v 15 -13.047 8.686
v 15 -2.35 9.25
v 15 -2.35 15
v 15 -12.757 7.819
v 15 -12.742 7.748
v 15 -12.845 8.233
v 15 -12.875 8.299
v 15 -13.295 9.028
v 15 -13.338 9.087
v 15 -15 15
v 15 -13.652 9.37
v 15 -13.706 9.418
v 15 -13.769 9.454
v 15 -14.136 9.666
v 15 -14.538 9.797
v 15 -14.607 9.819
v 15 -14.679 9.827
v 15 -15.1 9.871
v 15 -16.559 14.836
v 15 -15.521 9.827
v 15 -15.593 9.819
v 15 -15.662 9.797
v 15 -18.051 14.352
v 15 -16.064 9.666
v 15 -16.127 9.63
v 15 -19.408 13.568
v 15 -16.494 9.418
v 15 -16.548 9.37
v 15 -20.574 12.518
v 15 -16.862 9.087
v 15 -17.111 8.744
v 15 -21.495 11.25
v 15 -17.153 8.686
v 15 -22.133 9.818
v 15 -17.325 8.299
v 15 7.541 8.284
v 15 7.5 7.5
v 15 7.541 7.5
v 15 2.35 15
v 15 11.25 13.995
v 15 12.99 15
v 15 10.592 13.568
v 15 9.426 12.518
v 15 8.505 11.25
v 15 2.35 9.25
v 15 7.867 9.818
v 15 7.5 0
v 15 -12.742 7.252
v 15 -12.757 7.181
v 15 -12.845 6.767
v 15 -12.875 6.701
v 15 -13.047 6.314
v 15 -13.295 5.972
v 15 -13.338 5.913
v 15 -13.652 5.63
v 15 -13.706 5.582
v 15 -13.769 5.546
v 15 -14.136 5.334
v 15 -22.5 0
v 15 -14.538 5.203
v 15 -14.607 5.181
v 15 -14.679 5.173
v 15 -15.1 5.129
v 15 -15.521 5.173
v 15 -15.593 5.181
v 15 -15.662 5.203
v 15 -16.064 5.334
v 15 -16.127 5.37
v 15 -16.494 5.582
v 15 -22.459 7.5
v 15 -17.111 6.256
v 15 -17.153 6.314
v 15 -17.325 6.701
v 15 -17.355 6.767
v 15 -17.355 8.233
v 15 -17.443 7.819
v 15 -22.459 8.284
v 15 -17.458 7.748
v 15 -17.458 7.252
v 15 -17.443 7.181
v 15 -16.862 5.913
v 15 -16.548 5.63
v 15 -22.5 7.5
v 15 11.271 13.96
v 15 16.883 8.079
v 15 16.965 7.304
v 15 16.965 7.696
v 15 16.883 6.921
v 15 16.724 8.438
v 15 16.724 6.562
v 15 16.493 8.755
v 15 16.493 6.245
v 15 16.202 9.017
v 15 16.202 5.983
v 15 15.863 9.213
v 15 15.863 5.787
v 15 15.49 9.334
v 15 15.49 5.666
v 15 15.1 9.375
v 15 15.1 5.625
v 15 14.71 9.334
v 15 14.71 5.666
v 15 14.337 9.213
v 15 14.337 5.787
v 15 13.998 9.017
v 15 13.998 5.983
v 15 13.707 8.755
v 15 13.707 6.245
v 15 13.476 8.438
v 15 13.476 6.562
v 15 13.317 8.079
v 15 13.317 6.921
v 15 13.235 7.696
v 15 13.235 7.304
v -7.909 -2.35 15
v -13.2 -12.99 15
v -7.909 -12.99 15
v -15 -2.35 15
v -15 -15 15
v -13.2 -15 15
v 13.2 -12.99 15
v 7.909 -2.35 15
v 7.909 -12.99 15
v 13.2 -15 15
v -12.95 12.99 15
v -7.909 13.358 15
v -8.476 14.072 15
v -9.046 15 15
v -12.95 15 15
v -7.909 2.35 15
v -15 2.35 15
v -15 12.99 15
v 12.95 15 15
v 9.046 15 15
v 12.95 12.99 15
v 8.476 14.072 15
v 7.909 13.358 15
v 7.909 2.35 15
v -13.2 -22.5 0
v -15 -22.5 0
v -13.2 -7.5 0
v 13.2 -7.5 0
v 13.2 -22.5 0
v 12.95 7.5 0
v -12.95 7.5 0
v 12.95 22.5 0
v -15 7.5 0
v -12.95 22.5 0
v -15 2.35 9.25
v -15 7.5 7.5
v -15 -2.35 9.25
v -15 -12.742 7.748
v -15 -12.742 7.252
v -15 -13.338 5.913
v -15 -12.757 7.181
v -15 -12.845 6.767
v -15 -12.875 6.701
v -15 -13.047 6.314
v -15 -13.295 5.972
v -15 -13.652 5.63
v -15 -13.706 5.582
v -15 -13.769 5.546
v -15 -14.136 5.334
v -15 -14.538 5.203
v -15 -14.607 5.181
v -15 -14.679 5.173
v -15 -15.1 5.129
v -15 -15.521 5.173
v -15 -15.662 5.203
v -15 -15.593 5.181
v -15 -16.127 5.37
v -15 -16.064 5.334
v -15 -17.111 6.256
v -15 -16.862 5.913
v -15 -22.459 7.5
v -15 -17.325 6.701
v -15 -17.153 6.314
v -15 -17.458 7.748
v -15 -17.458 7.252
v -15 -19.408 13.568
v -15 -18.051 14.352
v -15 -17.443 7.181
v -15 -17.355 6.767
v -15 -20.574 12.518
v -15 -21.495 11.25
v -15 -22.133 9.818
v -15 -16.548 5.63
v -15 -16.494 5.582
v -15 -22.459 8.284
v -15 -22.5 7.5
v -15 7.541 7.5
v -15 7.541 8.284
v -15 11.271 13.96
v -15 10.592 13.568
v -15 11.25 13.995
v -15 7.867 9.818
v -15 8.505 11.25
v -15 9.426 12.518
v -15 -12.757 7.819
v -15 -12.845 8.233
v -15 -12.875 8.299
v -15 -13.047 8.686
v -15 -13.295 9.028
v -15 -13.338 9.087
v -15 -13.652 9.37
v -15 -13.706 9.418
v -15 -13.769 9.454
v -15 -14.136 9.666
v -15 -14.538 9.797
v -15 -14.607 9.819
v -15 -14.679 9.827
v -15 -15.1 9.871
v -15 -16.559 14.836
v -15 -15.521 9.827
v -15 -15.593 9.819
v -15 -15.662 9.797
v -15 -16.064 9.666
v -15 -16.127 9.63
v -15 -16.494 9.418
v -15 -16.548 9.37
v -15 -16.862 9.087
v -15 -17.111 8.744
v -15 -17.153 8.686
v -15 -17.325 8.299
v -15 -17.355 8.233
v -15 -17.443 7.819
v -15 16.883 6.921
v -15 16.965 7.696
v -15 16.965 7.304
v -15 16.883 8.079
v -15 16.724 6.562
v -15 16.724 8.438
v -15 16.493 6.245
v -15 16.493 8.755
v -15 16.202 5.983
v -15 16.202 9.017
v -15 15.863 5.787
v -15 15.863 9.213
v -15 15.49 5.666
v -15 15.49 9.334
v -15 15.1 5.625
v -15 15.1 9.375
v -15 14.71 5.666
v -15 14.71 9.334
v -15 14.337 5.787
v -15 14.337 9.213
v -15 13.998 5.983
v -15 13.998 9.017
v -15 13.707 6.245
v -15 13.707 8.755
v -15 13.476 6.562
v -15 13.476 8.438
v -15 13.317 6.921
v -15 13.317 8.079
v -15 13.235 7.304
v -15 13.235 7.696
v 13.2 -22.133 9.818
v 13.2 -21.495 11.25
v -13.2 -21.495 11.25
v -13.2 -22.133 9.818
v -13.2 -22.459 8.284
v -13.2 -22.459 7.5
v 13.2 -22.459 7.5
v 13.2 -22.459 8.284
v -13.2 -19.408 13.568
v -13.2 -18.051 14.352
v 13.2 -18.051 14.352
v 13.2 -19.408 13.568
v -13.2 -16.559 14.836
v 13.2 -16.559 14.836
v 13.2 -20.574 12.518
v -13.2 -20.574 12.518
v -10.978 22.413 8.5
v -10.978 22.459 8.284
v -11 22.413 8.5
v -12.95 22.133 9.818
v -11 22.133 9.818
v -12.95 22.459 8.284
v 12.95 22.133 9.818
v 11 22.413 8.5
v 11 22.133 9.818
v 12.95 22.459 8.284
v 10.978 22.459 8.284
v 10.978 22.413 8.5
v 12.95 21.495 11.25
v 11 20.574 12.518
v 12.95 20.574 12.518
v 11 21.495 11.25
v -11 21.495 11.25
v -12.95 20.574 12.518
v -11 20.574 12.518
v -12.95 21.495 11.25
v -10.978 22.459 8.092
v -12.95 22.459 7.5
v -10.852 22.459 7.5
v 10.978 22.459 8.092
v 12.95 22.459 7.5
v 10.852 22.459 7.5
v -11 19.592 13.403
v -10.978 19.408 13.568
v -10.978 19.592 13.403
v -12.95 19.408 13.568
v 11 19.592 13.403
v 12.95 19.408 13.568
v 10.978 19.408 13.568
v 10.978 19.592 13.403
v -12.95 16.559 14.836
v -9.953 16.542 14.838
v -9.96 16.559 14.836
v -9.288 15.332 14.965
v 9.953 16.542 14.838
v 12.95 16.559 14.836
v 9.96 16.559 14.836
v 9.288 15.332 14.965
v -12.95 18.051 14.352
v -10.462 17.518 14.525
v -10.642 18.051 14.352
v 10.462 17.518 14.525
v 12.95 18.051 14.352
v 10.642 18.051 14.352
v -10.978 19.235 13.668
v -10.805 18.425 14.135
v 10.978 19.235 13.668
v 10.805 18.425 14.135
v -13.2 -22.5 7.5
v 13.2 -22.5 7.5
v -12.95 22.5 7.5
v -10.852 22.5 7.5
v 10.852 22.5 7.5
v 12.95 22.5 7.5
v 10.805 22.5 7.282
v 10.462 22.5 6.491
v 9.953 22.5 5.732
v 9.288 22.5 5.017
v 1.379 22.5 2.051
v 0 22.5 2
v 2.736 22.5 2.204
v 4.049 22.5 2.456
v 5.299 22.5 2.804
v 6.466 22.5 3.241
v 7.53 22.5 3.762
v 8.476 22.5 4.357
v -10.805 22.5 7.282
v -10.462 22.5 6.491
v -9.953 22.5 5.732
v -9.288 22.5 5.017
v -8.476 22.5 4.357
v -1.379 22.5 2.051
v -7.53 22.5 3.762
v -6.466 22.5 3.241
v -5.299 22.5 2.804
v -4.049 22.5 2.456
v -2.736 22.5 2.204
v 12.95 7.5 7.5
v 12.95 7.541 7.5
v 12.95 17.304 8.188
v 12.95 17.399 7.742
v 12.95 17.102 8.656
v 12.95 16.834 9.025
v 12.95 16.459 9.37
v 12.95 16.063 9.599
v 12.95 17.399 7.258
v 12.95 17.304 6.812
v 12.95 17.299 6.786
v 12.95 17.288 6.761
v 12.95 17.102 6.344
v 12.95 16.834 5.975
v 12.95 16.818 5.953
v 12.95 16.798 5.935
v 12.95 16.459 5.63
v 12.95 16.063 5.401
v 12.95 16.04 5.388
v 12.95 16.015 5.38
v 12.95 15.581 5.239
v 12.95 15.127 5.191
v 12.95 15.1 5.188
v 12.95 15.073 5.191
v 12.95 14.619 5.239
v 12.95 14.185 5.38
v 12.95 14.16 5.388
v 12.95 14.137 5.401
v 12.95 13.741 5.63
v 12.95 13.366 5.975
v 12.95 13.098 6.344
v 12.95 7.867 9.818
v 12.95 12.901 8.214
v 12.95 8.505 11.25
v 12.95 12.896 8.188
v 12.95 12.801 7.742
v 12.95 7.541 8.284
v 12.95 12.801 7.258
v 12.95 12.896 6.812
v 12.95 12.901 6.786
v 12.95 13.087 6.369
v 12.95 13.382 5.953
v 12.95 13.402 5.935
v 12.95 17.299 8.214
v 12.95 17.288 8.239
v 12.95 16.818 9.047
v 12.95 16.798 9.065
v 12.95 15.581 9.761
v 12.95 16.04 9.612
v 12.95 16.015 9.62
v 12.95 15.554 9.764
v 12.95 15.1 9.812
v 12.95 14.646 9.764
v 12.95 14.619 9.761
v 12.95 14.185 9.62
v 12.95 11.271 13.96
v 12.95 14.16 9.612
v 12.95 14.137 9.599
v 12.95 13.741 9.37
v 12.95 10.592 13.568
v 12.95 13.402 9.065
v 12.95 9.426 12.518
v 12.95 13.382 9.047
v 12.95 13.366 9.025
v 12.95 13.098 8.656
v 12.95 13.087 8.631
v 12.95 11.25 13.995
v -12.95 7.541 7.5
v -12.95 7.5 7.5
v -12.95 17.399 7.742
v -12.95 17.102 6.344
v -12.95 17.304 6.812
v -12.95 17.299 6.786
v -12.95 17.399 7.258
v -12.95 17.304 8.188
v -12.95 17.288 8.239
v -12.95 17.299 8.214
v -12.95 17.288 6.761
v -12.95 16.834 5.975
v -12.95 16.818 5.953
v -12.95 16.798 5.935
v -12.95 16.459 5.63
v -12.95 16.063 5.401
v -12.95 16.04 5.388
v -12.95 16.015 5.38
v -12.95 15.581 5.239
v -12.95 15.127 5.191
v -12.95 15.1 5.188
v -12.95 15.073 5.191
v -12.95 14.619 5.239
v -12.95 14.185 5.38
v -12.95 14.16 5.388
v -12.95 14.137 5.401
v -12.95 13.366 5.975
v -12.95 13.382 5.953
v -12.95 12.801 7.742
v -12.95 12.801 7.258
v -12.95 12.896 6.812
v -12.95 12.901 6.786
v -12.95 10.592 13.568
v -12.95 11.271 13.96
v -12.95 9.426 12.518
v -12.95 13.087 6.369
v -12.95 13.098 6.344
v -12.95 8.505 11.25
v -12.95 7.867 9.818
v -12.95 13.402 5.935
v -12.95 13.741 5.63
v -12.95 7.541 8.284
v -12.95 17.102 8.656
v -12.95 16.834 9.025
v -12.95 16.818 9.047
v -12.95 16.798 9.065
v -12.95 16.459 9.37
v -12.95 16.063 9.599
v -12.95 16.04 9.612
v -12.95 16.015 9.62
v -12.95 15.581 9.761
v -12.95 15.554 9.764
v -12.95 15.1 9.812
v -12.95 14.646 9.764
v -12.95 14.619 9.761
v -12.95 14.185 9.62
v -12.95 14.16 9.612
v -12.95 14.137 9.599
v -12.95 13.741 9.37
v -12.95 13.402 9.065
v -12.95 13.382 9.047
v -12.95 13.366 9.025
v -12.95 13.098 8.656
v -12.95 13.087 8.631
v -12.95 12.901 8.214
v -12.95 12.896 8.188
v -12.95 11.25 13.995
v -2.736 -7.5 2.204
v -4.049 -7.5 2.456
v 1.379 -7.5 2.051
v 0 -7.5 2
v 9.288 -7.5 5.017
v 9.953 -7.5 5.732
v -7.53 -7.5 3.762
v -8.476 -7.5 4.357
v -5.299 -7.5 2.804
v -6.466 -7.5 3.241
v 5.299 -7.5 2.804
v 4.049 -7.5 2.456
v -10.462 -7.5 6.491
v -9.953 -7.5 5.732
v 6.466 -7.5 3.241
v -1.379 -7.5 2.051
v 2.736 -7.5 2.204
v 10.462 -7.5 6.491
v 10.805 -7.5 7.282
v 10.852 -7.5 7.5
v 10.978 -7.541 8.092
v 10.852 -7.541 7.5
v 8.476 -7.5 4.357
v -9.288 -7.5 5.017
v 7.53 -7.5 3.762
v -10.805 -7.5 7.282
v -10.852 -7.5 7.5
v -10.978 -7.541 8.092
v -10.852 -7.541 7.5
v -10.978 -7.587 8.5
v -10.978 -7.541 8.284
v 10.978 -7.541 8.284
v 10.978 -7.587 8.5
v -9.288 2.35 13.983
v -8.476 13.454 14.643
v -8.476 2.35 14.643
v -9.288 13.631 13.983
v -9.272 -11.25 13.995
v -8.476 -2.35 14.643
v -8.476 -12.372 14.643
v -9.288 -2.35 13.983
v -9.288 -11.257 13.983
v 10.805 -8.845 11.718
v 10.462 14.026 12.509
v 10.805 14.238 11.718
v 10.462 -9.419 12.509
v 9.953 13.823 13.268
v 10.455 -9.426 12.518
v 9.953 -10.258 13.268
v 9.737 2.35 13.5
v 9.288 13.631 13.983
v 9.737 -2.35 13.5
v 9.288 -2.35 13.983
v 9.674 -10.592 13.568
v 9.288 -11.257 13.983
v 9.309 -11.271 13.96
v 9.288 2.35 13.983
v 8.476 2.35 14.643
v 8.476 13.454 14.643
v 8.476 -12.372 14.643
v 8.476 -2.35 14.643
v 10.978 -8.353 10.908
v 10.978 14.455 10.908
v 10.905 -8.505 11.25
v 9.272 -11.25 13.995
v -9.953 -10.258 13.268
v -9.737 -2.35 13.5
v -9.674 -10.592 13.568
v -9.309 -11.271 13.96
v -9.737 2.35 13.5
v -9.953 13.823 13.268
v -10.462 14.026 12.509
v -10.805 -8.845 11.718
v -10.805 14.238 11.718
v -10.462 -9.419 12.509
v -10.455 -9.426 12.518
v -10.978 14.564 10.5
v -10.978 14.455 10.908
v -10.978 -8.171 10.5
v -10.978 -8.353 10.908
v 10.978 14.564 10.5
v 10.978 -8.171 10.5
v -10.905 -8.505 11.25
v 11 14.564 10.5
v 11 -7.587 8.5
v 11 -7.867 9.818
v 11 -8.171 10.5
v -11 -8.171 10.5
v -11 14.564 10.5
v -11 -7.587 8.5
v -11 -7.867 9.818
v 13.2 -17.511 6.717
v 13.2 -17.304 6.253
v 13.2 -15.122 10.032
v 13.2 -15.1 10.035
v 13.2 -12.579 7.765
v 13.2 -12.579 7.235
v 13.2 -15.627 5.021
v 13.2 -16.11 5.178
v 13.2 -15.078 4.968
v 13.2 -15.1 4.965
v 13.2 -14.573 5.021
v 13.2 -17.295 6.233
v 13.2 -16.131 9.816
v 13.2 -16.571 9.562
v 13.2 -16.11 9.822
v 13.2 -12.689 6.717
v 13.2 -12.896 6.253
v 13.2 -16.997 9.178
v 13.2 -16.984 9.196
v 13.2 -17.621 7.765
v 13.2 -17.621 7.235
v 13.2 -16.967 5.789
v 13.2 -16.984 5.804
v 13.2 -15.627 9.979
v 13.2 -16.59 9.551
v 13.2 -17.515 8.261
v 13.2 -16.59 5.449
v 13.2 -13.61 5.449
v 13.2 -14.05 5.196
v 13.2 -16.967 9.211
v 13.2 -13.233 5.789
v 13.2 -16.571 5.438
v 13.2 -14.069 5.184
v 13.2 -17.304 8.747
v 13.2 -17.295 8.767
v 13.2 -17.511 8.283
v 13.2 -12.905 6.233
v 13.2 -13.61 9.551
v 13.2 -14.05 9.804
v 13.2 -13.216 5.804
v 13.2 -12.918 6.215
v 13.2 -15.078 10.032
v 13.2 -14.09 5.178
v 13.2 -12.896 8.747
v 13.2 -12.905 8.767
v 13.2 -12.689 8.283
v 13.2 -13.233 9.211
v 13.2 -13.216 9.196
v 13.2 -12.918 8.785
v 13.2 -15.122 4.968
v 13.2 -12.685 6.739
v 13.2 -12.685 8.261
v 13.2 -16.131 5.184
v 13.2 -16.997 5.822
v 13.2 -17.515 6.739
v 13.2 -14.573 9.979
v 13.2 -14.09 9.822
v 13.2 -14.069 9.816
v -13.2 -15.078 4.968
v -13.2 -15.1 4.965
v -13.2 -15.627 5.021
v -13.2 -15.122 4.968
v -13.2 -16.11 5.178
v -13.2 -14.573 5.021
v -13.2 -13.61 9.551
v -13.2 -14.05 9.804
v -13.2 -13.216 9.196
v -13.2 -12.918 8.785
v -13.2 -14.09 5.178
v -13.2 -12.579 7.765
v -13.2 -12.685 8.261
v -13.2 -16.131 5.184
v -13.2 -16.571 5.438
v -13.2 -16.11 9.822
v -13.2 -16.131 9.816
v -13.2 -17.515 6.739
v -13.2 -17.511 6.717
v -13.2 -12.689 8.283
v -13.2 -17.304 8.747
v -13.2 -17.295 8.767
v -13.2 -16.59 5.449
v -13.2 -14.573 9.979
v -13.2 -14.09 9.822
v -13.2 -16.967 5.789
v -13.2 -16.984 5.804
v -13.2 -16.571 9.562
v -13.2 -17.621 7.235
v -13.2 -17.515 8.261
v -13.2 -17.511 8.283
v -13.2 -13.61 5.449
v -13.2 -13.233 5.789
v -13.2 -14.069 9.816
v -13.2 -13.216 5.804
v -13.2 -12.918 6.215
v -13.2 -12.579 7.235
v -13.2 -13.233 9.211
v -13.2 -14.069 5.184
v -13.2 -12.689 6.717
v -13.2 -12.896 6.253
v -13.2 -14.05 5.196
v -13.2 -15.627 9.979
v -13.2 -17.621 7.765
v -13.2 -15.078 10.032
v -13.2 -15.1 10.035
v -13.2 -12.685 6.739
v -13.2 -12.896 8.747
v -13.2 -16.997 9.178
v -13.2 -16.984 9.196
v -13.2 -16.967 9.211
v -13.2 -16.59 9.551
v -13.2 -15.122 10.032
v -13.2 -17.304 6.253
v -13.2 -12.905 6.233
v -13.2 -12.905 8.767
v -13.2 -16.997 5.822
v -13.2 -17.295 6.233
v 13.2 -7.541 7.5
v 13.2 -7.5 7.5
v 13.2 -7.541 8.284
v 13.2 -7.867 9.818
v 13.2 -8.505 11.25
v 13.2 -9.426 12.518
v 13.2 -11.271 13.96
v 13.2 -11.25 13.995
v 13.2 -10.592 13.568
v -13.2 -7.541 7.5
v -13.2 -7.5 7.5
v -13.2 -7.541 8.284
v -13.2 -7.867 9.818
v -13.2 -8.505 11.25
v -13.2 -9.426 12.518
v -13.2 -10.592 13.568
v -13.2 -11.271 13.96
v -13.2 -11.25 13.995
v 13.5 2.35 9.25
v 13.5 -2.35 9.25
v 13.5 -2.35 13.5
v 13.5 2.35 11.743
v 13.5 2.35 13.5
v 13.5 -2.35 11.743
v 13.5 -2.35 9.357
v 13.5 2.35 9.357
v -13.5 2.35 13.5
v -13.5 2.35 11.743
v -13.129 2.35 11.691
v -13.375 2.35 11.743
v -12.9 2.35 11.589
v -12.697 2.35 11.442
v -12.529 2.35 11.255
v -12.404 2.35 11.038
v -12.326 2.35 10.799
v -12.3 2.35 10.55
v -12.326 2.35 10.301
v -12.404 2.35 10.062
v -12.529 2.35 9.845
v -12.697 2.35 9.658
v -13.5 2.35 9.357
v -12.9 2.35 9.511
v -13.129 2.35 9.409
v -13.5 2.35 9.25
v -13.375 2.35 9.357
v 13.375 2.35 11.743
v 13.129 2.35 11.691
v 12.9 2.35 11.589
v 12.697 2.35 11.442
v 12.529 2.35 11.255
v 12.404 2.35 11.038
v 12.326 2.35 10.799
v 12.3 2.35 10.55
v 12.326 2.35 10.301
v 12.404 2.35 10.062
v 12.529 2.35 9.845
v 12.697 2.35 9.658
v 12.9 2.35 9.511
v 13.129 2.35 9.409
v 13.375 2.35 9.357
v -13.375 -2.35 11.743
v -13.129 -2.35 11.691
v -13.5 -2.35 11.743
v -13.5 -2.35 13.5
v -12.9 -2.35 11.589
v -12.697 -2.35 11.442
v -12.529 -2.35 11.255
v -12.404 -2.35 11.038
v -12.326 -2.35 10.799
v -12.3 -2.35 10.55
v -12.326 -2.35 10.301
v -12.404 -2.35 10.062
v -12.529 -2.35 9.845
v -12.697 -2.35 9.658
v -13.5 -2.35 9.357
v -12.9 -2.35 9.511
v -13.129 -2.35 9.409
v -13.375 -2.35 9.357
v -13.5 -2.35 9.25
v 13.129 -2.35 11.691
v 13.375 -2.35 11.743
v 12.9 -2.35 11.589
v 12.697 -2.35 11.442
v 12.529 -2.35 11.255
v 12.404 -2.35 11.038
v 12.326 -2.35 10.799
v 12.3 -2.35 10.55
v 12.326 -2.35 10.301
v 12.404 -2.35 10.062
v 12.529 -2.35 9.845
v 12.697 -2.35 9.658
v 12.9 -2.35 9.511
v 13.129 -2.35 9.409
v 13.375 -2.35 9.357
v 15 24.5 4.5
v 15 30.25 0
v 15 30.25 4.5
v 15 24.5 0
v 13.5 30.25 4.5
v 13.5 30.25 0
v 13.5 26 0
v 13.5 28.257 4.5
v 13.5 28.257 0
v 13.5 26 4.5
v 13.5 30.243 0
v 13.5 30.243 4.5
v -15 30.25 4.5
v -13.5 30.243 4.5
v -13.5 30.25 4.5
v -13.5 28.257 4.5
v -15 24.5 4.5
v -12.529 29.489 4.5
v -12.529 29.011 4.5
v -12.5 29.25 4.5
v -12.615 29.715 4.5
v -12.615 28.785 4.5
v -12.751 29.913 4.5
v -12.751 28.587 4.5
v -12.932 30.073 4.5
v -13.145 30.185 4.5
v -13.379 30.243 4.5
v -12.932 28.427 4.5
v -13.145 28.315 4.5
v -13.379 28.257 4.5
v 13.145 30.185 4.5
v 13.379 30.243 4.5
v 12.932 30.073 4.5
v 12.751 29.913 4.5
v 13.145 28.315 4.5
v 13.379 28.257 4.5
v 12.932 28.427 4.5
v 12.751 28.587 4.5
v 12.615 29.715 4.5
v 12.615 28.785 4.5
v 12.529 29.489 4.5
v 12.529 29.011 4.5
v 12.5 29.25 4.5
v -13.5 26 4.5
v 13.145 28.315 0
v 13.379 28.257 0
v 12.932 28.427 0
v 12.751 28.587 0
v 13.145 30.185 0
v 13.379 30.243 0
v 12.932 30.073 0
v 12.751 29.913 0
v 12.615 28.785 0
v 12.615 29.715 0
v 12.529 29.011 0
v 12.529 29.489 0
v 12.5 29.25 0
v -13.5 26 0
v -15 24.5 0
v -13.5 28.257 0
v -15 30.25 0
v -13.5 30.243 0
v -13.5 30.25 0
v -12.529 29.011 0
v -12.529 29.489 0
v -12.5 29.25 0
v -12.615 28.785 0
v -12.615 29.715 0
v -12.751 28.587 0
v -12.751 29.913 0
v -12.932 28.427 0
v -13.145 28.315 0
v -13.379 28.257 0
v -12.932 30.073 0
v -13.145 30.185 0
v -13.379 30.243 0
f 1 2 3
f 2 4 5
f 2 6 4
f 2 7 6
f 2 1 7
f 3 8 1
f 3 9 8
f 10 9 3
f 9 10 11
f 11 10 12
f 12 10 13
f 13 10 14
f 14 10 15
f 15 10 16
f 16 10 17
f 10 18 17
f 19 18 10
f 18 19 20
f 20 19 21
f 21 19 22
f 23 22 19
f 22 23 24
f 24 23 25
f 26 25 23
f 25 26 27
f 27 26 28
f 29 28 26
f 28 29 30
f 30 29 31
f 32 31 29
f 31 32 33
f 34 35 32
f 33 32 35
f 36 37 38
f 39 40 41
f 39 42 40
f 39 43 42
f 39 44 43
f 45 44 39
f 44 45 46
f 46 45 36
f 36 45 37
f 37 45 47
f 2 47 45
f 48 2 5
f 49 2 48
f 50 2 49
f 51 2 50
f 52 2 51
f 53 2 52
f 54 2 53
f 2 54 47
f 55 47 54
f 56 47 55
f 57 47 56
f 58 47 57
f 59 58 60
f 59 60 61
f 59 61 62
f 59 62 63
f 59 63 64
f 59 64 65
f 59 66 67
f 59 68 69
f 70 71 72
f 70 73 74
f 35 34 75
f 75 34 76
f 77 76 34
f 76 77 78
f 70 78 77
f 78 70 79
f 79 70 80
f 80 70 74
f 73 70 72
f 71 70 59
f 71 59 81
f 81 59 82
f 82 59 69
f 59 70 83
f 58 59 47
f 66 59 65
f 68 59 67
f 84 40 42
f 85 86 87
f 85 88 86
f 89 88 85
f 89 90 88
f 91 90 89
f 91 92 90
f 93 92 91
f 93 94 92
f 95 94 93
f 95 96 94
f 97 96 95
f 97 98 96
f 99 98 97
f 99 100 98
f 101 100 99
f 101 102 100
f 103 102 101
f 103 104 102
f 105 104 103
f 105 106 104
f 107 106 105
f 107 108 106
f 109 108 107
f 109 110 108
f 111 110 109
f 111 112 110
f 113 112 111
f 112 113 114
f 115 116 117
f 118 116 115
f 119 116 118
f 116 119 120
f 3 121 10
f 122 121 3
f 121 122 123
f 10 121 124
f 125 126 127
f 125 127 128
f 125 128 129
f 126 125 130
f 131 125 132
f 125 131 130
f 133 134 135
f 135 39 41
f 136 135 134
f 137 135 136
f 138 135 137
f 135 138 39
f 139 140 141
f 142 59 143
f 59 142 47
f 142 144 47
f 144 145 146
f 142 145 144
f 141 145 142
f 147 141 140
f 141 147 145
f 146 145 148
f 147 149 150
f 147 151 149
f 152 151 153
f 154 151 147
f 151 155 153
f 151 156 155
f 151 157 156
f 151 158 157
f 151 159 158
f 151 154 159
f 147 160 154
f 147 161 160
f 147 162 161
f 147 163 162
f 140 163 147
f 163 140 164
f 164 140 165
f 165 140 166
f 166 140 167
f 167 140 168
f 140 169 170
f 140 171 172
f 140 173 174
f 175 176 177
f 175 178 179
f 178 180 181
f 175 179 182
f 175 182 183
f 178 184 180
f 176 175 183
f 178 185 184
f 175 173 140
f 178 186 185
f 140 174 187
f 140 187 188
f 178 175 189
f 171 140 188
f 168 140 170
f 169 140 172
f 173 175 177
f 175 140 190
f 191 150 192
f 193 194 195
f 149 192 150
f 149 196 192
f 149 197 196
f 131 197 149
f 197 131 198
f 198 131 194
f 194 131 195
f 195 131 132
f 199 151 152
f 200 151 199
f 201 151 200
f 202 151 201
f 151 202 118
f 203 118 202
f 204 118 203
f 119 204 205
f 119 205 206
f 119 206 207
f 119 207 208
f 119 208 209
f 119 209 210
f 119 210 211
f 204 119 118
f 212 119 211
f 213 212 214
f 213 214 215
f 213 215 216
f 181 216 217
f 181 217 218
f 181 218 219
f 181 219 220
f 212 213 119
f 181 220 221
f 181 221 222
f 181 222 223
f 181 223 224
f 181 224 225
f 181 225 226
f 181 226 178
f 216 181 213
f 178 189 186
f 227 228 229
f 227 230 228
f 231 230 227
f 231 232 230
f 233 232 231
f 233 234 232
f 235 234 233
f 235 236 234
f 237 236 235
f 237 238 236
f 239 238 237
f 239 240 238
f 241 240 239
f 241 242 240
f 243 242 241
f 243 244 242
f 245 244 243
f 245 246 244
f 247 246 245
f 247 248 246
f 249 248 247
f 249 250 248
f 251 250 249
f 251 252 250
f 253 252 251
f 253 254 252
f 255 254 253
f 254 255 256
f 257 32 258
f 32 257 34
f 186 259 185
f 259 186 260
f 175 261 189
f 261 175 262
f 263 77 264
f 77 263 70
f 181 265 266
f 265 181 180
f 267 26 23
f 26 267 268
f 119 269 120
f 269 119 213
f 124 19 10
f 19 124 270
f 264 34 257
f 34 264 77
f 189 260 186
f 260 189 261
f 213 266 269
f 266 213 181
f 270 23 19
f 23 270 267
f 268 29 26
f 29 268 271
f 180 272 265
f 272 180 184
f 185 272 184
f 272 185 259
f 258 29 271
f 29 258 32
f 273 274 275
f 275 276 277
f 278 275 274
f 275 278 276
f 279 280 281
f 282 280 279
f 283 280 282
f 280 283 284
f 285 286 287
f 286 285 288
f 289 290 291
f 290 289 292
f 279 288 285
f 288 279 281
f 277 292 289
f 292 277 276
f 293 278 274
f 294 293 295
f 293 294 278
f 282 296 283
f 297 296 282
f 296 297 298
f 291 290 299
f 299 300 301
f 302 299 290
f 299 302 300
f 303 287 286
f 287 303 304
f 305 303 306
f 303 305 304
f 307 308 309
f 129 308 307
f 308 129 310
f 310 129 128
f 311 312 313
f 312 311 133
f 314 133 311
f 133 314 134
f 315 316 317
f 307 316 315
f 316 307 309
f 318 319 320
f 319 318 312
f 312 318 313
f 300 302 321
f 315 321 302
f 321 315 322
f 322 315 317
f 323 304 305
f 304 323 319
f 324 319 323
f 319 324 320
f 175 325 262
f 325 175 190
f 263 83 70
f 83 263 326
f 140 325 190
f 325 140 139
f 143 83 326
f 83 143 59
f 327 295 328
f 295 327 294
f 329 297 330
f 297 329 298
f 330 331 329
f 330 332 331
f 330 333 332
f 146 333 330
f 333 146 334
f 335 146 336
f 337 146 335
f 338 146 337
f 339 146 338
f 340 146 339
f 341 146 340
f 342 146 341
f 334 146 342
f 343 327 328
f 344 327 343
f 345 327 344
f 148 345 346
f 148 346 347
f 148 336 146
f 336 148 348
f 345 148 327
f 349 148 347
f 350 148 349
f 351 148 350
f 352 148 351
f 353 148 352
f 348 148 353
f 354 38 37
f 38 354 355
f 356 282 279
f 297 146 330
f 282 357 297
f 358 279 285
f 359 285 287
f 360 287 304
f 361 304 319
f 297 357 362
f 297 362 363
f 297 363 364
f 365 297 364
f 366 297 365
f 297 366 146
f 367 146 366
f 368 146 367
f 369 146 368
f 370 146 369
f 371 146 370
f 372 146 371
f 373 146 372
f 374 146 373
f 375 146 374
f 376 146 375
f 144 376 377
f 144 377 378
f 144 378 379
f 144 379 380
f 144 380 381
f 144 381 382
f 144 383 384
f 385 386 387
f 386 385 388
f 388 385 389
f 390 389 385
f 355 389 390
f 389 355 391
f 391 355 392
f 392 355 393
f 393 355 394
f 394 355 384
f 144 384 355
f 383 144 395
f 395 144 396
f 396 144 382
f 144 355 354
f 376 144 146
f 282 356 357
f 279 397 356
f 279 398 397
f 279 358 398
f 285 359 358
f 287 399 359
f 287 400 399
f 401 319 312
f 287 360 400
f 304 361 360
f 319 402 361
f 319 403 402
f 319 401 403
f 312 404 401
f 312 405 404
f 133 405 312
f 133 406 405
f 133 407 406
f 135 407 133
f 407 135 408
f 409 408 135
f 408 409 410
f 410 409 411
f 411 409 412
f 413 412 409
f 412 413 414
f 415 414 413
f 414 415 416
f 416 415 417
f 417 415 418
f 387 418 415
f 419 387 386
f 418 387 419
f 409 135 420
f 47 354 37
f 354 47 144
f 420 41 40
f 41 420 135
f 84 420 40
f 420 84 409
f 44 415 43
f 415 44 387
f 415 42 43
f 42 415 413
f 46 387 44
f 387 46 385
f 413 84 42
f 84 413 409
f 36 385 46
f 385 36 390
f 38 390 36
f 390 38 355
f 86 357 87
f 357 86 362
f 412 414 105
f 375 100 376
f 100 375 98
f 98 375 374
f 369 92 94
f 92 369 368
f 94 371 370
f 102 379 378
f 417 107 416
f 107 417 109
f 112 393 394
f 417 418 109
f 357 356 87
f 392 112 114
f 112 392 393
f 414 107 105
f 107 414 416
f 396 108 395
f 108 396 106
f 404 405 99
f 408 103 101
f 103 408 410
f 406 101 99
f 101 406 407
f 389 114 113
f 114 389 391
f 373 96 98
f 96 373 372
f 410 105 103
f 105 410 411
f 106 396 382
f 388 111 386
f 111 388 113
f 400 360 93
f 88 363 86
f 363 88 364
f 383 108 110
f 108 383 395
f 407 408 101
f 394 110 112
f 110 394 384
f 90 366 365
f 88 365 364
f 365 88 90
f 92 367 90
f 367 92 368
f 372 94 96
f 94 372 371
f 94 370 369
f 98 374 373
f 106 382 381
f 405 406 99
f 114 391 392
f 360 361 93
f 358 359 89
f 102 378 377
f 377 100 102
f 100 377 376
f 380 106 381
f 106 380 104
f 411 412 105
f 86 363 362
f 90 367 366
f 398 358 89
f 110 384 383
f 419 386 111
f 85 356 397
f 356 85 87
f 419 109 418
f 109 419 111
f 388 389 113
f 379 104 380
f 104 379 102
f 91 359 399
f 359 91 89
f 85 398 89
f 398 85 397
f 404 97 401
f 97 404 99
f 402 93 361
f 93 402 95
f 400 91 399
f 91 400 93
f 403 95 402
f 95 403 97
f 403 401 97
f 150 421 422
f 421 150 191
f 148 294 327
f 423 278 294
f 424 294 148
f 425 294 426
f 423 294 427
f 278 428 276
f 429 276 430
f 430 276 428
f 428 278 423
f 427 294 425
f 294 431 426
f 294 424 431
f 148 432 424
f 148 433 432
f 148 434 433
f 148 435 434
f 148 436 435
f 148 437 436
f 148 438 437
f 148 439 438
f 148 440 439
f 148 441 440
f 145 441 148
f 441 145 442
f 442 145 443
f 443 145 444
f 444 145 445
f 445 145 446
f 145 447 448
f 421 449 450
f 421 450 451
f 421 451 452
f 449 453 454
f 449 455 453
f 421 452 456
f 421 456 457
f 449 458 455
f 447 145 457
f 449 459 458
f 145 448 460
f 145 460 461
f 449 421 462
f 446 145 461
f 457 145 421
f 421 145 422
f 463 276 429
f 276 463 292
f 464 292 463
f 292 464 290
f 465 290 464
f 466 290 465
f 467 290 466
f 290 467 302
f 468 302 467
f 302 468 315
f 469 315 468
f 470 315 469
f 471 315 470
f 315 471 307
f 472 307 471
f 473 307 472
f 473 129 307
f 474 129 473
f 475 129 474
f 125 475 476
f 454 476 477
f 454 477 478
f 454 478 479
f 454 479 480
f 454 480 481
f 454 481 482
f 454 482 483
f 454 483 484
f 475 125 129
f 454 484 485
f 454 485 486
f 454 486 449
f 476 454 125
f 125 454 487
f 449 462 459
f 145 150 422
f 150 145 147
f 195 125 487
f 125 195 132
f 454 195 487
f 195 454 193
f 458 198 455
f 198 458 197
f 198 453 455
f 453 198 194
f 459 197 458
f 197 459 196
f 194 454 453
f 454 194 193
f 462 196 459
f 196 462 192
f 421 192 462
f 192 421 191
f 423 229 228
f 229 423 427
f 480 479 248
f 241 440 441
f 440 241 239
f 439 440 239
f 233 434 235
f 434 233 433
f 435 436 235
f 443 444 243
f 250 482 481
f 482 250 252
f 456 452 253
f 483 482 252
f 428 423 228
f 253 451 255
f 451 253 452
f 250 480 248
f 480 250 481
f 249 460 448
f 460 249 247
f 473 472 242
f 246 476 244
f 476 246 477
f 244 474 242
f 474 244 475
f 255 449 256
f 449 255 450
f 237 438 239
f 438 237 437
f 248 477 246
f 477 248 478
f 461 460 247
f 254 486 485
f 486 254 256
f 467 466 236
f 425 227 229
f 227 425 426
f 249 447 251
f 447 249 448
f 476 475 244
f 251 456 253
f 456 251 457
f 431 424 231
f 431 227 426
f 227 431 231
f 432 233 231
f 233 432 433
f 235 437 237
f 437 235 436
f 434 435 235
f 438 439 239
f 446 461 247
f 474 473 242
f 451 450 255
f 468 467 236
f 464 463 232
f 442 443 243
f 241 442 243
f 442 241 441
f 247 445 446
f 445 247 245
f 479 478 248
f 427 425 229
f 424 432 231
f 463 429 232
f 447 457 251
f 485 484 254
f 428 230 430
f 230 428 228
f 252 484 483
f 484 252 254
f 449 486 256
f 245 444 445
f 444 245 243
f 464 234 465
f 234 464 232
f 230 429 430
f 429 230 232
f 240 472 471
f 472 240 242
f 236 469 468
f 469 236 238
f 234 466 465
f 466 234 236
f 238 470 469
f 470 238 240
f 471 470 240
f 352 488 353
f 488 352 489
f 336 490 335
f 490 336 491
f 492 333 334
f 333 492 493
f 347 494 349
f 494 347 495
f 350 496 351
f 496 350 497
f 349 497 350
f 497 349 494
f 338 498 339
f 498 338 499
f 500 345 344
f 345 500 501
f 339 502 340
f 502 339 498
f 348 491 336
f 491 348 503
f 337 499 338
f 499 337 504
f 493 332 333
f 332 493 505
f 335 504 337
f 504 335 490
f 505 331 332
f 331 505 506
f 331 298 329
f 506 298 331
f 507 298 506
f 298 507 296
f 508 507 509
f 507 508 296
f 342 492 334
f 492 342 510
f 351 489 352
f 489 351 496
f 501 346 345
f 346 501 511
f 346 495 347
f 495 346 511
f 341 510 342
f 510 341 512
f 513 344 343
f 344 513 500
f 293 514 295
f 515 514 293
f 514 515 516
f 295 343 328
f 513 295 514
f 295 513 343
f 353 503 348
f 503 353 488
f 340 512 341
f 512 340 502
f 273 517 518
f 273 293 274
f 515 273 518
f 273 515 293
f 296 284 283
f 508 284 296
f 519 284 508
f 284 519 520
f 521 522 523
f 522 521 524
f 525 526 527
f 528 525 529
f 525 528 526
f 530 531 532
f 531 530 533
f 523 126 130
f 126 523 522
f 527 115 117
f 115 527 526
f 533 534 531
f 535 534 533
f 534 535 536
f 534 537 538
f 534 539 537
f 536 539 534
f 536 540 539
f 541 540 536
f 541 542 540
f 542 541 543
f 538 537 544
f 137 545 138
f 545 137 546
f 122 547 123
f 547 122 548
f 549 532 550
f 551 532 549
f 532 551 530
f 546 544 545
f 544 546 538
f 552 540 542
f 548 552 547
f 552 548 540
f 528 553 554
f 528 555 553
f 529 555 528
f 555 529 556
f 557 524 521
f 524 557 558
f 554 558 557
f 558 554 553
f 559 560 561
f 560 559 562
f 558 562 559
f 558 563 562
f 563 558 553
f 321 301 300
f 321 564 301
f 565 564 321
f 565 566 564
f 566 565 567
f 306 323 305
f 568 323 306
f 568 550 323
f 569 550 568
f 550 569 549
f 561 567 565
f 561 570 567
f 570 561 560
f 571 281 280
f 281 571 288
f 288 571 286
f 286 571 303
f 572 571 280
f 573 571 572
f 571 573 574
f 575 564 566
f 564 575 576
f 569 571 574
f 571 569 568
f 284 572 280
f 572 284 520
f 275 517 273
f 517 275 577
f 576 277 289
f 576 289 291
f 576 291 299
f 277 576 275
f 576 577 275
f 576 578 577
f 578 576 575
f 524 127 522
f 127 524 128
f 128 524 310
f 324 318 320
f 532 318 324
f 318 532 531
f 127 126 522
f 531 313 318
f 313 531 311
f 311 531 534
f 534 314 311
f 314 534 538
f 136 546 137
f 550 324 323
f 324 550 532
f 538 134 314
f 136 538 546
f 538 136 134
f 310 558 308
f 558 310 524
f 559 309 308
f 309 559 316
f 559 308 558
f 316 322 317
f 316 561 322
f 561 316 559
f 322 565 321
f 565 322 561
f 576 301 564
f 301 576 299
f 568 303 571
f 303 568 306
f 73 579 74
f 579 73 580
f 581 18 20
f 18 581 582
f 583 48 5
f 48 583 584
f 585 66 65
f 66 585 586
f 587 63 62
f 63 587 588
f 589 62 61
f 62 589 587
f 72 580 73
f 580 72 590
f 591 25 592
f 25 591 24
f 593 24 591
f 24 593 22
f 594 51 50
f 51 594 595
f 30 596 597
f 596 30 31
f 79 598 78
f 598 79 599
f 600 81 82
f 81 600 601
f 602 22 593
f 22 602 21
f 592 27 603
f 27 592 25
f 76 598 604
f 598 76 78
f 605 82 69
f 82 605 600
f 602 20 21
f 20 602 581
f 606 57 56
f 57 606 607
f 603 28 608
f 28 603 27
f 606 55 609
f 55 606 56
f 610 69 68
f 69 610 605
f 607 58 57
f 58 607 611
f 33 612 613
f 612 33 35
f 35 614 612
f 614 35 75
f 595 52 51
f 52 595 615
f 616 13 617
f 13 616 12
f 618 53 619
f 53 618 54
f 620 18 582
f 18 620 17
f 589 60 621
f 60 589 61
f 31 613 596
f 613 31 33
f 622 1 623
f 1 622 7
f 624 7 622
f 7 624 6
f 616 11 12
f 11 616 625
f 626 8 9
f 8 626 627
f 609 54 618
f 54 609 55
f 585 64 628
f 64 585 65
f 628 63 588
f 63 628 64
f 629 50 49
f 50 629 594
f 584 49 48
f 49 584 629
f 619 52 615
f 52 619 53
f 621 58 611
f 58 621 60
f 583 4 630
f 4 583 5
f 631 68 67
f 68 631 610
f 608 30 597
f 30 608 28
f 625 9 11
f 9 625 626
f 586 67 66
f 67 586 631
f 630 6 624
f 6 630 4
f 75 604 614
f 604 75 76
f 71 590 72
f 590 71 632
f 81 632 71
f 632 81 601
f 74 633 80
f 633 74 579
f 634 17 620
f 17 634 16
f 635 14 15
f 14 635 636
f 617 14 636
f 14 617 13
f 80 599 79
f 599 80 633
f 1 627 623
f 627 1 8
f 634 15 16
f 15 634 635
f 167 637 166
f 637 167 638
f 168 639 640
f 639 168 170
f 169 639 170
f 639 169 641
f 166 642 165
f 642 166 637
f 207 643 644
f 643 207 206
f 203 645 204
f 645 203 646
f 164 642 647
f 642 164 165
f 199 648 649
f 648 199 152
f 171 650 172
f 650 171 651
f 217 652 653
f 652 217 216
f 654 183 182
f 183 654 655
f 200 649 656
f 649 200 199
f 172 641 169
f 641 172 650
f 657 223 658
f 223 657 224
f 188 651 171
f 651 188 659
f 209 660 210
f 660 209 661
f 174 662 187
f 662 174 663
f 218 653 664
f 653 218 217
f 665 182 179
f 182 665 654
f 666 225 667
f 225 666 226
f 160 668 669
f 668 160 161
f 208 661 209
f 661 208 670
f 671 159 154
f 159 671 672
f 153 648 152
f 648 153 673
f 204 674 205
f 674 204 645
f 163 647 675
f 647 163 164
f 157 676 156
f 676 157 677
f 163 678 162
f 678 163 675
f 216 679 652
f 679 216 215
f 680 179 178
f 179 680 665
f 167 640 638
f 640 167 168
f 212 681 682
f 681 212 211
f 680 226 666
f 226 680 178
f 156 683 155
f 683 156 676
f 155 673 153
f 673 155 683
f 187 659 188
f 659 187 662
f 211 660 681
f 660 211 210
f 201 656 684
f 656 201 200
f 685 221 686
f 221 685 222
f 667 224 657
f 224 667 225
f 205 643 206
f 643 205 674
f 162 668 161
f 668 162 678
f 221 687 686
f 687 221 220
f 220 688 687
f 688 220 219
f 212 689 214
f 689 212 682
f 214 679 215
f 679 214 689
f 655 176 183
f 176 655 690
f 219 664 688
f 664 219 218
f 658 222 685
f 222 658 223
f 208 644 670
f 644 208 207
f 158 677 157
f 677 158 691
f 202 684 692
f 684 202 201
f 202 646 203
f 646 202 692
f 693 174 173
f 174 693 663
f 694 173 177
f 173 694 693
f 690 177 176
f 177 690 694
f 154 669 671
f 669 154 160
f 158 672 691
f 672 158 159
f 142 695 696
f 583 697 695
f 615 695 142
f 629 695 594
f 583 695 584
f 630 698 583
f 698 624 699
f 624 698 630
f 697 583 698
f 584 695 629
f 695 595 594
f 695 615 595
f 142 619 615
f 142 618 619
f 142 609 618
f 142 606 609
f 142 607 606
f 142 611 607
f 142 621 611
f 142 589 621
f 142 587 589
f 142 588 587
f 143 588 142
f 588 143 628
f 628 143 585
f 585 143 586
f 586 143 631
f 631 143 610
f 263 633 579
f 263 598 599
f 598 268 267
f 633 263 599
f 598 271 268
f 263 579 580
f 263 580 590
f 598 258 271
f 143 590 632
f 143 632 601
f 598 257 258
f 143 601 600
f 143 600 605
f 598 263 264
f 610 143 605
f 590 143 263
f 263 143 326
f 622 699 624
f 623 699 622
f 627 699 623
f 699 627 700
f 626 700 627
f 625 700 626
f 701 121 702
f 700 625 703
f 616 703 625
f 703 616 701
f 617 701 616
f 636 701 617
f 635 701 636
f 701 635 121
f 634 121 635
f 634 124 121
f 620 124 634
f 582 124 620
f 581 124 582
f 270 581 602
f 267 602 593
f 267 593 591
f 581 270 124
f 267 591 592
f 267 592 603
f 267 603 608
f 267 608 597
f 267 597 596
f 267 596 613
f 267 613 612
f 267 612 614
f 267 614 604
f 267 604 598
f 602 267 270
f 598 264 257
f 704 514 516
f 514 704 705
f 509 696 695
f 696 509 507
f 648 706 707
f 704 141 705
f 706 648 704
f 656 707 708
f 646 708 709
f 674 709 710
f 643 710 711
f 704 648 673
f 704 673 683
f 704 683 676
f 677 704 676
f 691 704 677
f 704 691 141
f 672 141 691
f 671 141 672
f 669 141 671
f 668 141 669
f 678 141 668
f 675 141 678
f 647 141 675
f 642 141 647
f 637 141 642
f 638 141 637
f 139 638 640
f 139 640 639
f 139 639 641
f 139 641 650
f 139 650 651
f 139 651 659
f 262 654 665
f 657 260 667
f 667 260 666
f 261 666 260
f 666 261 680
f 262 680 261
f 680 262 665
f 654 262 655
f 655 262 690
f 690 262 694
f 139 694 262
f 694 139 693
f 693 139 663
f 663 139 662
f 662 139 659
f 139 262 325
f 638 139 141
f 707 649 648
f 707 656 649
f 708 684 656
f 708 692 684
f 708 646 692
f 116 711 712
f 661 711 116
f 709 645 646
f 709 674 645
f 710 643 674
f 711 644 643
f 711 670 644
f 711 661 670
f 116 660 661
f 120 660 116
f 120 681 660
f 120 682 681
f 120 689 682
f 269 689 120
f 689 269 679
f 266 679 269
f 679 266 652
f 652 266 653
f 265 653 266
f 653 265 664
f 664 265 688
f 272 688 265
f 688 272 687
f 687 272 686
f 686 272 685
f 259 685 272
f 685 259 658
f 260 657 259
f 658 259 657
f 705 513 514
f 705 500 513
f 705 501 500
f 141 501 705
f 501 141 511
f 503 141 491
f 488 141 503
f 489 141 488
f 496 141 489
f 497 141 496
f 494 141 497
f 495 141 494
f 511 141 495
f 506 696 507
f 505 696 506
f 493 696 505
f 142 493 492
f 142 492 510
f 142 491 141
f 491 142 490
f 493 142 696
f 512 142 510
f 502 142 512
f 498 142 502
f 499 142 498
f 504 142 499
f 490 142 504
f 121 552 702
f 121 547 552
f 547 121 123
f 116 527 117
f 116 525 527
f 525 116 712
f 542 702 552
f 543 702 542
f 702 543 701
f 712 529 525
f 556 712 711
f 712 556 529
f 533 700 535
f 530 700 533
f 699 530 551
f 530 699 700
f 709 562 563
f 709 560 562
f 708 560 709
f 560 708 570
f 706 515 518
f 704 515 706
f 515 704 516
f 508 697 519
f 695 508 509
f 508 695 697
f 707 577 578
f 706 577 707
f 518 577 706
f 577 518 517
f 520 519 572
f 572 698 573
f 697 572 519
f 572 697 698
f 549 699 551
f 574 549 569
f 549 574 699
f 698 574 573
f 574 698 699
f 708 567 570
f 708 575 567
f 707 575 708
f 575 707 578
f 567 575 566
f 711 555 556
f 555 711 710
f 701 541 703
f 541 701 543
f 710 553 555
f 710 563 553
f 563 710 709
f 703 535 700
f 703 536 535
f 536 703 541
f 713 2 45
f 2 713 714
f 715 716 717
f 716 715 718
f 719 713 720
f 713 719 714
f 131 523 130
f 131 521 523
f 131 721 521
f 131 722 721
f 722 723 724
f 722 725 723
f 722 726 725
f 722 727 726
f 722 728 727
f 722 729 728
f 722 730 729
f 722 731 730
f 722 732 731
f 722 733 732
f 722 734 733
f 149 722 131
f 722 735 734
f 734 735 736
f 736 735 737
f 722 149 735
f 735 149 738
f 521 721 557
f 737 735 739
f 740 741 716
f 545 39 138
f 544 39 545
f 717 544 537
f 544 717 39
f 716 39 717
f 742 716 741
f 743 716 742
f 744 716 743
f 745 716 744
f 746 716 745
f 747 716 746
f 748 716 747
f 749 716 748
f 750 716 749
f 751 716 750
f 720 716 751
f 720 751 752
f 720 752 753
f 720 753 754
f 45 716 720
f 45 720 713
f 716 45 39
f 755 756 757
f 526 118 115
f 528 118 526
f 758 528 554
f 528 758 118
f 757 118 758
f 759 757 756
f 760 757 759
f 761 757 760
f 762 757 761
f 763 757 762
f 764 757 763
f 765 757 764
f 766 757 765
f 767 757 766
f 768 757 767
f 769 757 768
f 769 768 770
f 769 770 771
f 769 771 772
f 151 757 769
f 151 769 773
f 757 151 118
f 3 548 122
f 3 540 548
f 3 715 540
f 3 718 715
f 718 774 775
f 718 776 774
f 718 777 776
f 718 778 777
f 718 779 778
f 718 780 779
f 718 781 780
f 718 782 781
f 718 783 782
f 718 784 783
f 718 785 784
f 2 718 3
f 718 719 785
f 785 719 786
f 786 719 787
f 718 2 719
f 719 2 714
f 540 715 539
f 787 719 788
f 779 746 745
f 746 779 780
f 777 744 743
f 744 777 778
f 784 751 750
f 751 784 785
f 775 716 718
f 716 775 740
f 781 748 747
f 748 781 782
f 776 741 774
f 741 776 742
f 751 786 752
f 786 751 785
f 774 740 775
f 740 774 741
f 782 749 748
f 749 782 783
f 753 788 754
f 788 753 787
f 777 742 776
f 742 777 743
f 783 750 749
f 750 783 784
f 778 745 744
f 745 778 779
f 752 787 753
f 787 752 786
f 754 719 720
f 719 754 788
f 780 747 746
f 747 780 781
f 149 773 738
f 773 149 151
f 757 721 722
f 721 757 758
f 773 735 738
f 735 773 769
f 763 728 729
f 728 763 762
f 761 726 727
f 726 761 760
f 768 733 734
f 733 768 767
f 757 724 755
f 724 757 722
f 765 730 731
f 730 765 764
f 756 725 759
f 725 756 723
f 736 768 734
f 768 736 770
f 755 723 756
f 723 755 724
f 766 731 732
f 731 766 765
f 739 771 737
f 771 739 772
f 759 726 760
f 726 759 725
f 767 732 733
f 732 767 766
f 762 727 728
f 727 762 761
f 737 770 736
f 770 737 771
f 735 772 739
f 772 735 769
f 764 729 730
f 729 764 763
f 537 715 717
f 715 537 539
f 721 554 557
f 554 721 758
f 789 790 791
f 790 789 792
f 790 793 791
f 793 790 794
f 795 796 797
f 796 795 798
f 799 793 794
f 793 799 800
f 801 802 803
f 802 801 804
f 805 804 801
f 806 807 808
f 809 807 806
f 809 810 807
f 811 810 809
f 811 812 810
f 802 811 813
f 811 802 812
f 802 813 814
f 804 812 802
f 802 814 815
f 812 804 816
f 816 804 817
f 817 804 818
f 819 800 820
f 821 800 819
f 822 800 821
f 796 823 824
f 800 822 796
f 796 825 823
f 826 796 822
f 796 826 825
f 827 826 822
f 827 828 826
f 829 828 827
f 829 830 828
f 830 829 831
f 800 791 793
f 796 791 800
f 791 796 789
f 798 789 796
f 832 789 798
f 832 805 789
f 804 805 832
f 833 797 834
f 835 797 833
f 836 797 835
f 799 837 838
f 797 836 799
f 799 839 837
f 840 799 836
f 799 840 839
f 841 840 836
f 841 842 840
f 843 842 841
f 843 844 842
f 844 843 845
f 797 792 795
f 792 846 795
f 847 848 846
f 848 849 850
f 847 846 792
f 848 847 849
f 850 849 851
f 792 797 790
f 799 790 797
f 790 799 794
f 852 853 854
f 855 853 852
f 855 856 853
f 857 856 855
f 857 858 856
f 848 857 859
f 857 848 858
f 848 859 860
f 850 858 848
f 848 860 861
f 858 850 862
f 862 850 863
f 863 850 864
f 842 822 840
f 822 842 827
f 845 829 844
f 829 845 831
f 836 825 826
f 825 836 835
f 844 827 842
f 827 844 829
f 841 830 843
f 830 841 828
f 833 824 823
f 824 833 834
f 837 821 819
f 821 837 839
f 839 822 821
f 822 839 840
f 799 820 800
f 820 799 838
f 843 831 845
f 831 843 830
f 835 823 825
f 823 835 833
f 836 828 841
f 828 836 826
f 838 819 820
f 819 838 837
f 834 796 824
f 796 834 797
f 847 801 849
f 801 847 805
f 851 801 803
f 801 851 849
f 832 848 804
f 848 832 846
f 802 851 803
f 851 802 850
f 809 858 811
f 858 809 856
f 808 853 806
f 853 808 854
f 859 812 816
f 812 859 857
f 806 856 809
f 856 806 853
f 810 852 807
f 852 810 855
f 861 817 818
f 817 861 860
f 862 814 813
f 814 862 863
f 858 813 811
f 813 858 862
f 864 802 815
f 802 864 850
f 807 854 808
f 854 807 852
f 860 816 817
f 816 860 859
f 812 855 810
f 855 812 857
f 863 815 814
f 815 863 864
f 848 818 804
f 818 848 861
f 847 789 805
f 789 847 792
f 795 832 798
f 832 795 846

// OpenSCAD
/*
Original Code by Joerg Scheuermann: https://www.thingiverse.com/Joerg
Original on Thingiverse: https://www.thingiverse.com/thing:8239

Clip module, Toothpick diameter Variable,
OpenSCAD/Thingiverse Customizer optimization,
Multicolor Modifier Block and extra comments
added by Gasol1n (Christian Riedl): https://www.gasol1n.com/
                                                        https://www.thingiverse.com/Gasolin

Licensed under CC BY-SA 3.0
https://creativecommons.org/licenses/by-sa/3.0/
*/

// Original File Name: chain_link_v2-clip.scad

/* [Size] */
// Width of the Chain Link
width= 30;
// Length of the Chain Link
length=45;
// Height of the Chain Link
height=15;

/* [Hidden] */
// maximum allowed bending-angle
max_angle = 50; 

/* [Angles] */
// max. angle allowed to bend downwards
under_angle=0; // [50]
// max. angle allowed to bend upwards
over_angle=30; // [50]

/* [Variant] */
// true - connectors go from outside to inside; false - vise versa
inner_axis=0; // [1:true, 0:false]
// true - top is closed, no holes/clip; false - top is open
closed=0; // [1:true, 0:false]
// true - a clip is used an generated instead of the toothpick hole; only works if closed=false
clip=1; // [1:true, 0:false]

/* [Further Settings] */
// Tolerance for better fit
tolerance = 0.2;
// Diameter of the toothpick
toothpick = 2.1; 
// Generate Modifier Block for Multicolor Stripe
multicolor_block=0; // [1:true, 0:false]
//Height of the Modifier (Multicolor) Block
mcb_height=2;

module outline(width, length, height, radius, l1, angle)
{
	y_ofs = l1 / 2;
	t     = radius / 2;

	difference() {
		union() {
			translate([0, 0, height/2])    cube([width,l1,height], true);
			translate([0, -y_ofs, radius]) rotate([0, 90, 0]) cylinder(width, r = radius, center = true, $fs=0.5);
			translate([0,  y_ofs, radius]) rotate([0, 90, 0]) cylinder(width, r = radius, center = true, $fs=0.5);
			translate([0, -y_ofs, radius]) rotate([angle,     0, 0]) translate([0, -t, -t]) cube([width,radius,radius], true);
			translate([0,  y_ofs, radius]) rotate([360-angle, 0, 0]) translate([0,  t, -t]) cube([width,radius,radius], true);
		}
		translate([0, 0, -(t/2)]) cube([width,length,t], true);
	}
}

module axis(x_ofs, y_ofs, z_ofs, length, radius)
{
	rad = (radius * 0.25);
	translate([x_ofs,y_ofs,z_ofs]) rotate([0, 90, 0]) cylinder(length+tolerance, r1 = rad*1.25, r2 = rad, center = true, $fs=0.25);
}

module axis_hole(x_ofs, y_ofs, z_ofs, length, radius)
{
	rad = (radius * 0.25) * 1.25;
	translate([x_ofs,y_ofs,z_ofs]) rotate([0, 90, 0]) cylinder(length+tolerance, r1 = rad+tolerance, r2 = rad, center = true, $fs=0.25);
}

module outcut0(width, radius, h1, thick, angle, inner_axis)
{
	w = (width - thick)/2;
	t = thick + tolerance/2;

	translate([w, 0, 0]) union() {
		difference() {
			union() {
				translate([0,0,h1/2]) cube([t,radius*2, h1], true);
				translate([0,0,h1]) rotate([angle, 0, 0]) translate([0,radius/2,0]) cube([t,radius,radius*2], true);
				translate([0,0,h1]) rotate([0, 90, 0]) cylinder(t, r = radius, center = true, $fs=0.5);
				if (inner_axis) {
					axis_hole(-(1.5*w), tolerance/2, h1,w,radius);
				}
			}
			if (!inner_axis) {
				axis(-(tolerance)/2, tolerance/2, h1,thick,radius);
			}
		}
	}
}
module outcut(width, radius, l1, h1, thick, angle, inner_axis)
{
	translate([0,l1/2,0]) union() {
		outcut0(width, radius, h1, thick, angle, inner_axis);
		mirror([1,0,0]) outcut0(width, radius, h1, thick, angle, inner_axis);
	}
}

module incut(width, radius, l1, h1, thick, angle, inner_axis)
{
	width2 = width - 2*(thick-tolerance);

	translate([0,-(l1/2),h1]) difference() {
		union() {
			translate([0,0,-(h1/2)]) cube([width2,radius*2,h1], true);
			translate([0,0,0]) rotate([180-angle,0,0]) translate([0,radius/2,0]) cube([width2, radius, radius*2], true);
			translate([0,0,0]) rotate([0, 90, 0]) cylinder(width2, r = radius, center = true, $fs=0.5);
			if (!inner_axis) {
				axis_hole((width-thick)/2+tolerance, -(tolerance/2), 0,thick,radius);
				mirror([1,0,0]) axis_hole((width-thick)/2+tolerance, -(tolerance/2), 0,thick,radius);
			}
		}
		if (inner_axis) {
			axis(-((width2-thick)/2), -(tolerance/2), 0,thick,radius);
			mirror([1,0,0]) axis(-((width2-thick)/2), -(tolerance/2), 0,thick,radius);
		}
	}
}

module middle_0(length, radius, thick, closed)
{
	if (closed) {
		cube([radius*2,length,radius*2], true);
	} else {
		rotate([90, 90, 0]) cylinder(length, r = radius, center = true, $fn=50);
		translate([0,0,thick]) rotate([90, 90, 0]) cylinder(length, r = radius, center = true, $fn=50);
		translate([0,0,thick/2]) cube([2*radius,length,thick], true);
	}
}
module middle(width, radius, length, height, l1, h1, thick, over, under, inner_axis, closed)
{
	l = length;
	th = max(thick,thick * height/width);
	h = height - (closed ?2 :1)*th;
	w = width - 4*thick;
	r = h / 2;
	scale(v=[w/h,1,1]) translate(v = [0,0,r+th]) union() {
		translate([0,h1,0]) middle_0(l, r, th, closed);
		translate([0,(l1/2)+0.1,0]) {
			difference() {
				rotate([over,0,0]) union() {
					translate([0, l/4, 0]) middle_0(l/2, r, th, closed);
					translate([0, l/4,-r]) cube([2*r,l/2,2*r], true);
				}
				translate([0, l/4,-r]) cube([2*r,l/2,2*r], true);
			}
			difference() {
				rotate([-under,0,0]) union() {
					translate([0, l/4, 0]) middle_0(l/2, r, th, closed);
					translate([0, l/4,r]) cube([2*r,l/2,2*r], true);
				}
				translate([0, l/4,r]) cube([2*r,l/2,2*r], true);
			}
		}
	}
}

module clip(width, height, length, tol=0)
{
    tol2 = tol * 2;
    cwidth = (length/10)+tol;
    cthickness = 1.5+tol;
    clength = 5;
    ccylinder = 2+tol2;
    translate([0, 0, height-(cthickness-tol2)/2])union(){
        cube([width+tol2, cwidth, cthickness], true);
        translate([width/2-(cthickness-tol2)/2, 0, -clength/2])union(){
            cube([cthickness, cwidth, clength+tol], true);
            translate([-cthickness/2, 0, -(clength/2-ccylinder/2)])rotate([90, 0, 0])cylinder(cwidth, r = ccylinder / 2, center= true, $fs=0.25);
        }
        translate([-(width/2-(cthickness-tol2)/2), 0, -clength/2])rotate([0, 0, 180])union(){
            cube([cthickness, cwidth, clength+tol], true);
            translate([-cthickness/2, 0, -(clength/2-ccylinder/2)])rotate([90, 0, 0])cylinder(cwidth, r = ccylinder / 2, center= true, $fs=0.25);
        }
    }
}

module hole(width, height, closed)
{
	if (!closed) {
		translate([0,0,height-1.5]) rotate([0, 90, 0]) cylinder(width+1, r = toothpick / 2, center = true, $fs=0.25);
	}
}

module chain_link(width, length, height, under_angle, over_angle, inner_axis, closed, clip)
{
	thick = min(2,max(1, 0.1*width));
	radius = height / 2;
	len    = max(length, 2*(height+thick));
	l1     = len - (2 * radius);
	h1     = radius;
	under  = min(max_angle, under_angle);
	over   = min(max_angle, over_angle);

	difference() {
		outline(width, len, height, radius, l1, under);
		outcut(width, radius, l1, h1, thick, over,  inner_axis);
		middle(width, radius, len, height, l1, h1, thick, over, under, inner_axis, closed);
		incut(width, radius, l1, h1, thick, over, inner_axis);
        if(clip&&!closed){
            clip(width, height, len, tolerance);
        }else{
            hole(width, height, closed);
        }
	}
    if(clip&&!closed) translate([0, 2+height+len/2, (len/10)/2])rotate([90, 0, 0])clip(width, height, len);
}

// show three chain-links connected at maximum bending angles
module debug(width, length, height, under_angle, over_angle, inner_axis, closed)
{
	thick = min(2,max(1, 0.1*width));
	radius = height / 2;
	len    = max(length, 2*(height+thick));
	l1     = len - (2 * radius);
	y_ofs  = (l1 / 2) + 0.1;
	z_ofs  = radius;

	chain_link(width, length, height, under_angle, over_angle, inner_axis, closed);
	translate(v = [0, -y_ofs,z_ofs]) rotate(a = [min(max_angle, under_angle),0,0]) translate(v = [0,-y_ofs,-z_ofs]) chain_link(width, length, height, under_angle, over_angle, inner_axis, closed);
	translate(v = [0, y_ofs,z_ofs]) rotate(a = [min(max_angle, over_angle),0,0]) translate(v = [0,y_ofs,-z_ofs]) chain_link(width, length, height, under_angle, over_angle, inner_axis, closed);
}
//debug(15, 18, 10, 30, 30, true, false);

//Multicolor Block or Chain Link
if(multicolor_block){
    translate([0, 0, height/2])cube([width+2, length+2, mcb_height], center = true);
}else{
    //Old
    //chain_link(width= 30, length=45, height=15, under_angle=0, over_angle=30, inner_axis=false, closed=false , clip=true);
    // New - Changed for Customizer compatibility
    chain_link(width, length, height, under_angle, over_angle, inner_axis, closed , clip); 
}
